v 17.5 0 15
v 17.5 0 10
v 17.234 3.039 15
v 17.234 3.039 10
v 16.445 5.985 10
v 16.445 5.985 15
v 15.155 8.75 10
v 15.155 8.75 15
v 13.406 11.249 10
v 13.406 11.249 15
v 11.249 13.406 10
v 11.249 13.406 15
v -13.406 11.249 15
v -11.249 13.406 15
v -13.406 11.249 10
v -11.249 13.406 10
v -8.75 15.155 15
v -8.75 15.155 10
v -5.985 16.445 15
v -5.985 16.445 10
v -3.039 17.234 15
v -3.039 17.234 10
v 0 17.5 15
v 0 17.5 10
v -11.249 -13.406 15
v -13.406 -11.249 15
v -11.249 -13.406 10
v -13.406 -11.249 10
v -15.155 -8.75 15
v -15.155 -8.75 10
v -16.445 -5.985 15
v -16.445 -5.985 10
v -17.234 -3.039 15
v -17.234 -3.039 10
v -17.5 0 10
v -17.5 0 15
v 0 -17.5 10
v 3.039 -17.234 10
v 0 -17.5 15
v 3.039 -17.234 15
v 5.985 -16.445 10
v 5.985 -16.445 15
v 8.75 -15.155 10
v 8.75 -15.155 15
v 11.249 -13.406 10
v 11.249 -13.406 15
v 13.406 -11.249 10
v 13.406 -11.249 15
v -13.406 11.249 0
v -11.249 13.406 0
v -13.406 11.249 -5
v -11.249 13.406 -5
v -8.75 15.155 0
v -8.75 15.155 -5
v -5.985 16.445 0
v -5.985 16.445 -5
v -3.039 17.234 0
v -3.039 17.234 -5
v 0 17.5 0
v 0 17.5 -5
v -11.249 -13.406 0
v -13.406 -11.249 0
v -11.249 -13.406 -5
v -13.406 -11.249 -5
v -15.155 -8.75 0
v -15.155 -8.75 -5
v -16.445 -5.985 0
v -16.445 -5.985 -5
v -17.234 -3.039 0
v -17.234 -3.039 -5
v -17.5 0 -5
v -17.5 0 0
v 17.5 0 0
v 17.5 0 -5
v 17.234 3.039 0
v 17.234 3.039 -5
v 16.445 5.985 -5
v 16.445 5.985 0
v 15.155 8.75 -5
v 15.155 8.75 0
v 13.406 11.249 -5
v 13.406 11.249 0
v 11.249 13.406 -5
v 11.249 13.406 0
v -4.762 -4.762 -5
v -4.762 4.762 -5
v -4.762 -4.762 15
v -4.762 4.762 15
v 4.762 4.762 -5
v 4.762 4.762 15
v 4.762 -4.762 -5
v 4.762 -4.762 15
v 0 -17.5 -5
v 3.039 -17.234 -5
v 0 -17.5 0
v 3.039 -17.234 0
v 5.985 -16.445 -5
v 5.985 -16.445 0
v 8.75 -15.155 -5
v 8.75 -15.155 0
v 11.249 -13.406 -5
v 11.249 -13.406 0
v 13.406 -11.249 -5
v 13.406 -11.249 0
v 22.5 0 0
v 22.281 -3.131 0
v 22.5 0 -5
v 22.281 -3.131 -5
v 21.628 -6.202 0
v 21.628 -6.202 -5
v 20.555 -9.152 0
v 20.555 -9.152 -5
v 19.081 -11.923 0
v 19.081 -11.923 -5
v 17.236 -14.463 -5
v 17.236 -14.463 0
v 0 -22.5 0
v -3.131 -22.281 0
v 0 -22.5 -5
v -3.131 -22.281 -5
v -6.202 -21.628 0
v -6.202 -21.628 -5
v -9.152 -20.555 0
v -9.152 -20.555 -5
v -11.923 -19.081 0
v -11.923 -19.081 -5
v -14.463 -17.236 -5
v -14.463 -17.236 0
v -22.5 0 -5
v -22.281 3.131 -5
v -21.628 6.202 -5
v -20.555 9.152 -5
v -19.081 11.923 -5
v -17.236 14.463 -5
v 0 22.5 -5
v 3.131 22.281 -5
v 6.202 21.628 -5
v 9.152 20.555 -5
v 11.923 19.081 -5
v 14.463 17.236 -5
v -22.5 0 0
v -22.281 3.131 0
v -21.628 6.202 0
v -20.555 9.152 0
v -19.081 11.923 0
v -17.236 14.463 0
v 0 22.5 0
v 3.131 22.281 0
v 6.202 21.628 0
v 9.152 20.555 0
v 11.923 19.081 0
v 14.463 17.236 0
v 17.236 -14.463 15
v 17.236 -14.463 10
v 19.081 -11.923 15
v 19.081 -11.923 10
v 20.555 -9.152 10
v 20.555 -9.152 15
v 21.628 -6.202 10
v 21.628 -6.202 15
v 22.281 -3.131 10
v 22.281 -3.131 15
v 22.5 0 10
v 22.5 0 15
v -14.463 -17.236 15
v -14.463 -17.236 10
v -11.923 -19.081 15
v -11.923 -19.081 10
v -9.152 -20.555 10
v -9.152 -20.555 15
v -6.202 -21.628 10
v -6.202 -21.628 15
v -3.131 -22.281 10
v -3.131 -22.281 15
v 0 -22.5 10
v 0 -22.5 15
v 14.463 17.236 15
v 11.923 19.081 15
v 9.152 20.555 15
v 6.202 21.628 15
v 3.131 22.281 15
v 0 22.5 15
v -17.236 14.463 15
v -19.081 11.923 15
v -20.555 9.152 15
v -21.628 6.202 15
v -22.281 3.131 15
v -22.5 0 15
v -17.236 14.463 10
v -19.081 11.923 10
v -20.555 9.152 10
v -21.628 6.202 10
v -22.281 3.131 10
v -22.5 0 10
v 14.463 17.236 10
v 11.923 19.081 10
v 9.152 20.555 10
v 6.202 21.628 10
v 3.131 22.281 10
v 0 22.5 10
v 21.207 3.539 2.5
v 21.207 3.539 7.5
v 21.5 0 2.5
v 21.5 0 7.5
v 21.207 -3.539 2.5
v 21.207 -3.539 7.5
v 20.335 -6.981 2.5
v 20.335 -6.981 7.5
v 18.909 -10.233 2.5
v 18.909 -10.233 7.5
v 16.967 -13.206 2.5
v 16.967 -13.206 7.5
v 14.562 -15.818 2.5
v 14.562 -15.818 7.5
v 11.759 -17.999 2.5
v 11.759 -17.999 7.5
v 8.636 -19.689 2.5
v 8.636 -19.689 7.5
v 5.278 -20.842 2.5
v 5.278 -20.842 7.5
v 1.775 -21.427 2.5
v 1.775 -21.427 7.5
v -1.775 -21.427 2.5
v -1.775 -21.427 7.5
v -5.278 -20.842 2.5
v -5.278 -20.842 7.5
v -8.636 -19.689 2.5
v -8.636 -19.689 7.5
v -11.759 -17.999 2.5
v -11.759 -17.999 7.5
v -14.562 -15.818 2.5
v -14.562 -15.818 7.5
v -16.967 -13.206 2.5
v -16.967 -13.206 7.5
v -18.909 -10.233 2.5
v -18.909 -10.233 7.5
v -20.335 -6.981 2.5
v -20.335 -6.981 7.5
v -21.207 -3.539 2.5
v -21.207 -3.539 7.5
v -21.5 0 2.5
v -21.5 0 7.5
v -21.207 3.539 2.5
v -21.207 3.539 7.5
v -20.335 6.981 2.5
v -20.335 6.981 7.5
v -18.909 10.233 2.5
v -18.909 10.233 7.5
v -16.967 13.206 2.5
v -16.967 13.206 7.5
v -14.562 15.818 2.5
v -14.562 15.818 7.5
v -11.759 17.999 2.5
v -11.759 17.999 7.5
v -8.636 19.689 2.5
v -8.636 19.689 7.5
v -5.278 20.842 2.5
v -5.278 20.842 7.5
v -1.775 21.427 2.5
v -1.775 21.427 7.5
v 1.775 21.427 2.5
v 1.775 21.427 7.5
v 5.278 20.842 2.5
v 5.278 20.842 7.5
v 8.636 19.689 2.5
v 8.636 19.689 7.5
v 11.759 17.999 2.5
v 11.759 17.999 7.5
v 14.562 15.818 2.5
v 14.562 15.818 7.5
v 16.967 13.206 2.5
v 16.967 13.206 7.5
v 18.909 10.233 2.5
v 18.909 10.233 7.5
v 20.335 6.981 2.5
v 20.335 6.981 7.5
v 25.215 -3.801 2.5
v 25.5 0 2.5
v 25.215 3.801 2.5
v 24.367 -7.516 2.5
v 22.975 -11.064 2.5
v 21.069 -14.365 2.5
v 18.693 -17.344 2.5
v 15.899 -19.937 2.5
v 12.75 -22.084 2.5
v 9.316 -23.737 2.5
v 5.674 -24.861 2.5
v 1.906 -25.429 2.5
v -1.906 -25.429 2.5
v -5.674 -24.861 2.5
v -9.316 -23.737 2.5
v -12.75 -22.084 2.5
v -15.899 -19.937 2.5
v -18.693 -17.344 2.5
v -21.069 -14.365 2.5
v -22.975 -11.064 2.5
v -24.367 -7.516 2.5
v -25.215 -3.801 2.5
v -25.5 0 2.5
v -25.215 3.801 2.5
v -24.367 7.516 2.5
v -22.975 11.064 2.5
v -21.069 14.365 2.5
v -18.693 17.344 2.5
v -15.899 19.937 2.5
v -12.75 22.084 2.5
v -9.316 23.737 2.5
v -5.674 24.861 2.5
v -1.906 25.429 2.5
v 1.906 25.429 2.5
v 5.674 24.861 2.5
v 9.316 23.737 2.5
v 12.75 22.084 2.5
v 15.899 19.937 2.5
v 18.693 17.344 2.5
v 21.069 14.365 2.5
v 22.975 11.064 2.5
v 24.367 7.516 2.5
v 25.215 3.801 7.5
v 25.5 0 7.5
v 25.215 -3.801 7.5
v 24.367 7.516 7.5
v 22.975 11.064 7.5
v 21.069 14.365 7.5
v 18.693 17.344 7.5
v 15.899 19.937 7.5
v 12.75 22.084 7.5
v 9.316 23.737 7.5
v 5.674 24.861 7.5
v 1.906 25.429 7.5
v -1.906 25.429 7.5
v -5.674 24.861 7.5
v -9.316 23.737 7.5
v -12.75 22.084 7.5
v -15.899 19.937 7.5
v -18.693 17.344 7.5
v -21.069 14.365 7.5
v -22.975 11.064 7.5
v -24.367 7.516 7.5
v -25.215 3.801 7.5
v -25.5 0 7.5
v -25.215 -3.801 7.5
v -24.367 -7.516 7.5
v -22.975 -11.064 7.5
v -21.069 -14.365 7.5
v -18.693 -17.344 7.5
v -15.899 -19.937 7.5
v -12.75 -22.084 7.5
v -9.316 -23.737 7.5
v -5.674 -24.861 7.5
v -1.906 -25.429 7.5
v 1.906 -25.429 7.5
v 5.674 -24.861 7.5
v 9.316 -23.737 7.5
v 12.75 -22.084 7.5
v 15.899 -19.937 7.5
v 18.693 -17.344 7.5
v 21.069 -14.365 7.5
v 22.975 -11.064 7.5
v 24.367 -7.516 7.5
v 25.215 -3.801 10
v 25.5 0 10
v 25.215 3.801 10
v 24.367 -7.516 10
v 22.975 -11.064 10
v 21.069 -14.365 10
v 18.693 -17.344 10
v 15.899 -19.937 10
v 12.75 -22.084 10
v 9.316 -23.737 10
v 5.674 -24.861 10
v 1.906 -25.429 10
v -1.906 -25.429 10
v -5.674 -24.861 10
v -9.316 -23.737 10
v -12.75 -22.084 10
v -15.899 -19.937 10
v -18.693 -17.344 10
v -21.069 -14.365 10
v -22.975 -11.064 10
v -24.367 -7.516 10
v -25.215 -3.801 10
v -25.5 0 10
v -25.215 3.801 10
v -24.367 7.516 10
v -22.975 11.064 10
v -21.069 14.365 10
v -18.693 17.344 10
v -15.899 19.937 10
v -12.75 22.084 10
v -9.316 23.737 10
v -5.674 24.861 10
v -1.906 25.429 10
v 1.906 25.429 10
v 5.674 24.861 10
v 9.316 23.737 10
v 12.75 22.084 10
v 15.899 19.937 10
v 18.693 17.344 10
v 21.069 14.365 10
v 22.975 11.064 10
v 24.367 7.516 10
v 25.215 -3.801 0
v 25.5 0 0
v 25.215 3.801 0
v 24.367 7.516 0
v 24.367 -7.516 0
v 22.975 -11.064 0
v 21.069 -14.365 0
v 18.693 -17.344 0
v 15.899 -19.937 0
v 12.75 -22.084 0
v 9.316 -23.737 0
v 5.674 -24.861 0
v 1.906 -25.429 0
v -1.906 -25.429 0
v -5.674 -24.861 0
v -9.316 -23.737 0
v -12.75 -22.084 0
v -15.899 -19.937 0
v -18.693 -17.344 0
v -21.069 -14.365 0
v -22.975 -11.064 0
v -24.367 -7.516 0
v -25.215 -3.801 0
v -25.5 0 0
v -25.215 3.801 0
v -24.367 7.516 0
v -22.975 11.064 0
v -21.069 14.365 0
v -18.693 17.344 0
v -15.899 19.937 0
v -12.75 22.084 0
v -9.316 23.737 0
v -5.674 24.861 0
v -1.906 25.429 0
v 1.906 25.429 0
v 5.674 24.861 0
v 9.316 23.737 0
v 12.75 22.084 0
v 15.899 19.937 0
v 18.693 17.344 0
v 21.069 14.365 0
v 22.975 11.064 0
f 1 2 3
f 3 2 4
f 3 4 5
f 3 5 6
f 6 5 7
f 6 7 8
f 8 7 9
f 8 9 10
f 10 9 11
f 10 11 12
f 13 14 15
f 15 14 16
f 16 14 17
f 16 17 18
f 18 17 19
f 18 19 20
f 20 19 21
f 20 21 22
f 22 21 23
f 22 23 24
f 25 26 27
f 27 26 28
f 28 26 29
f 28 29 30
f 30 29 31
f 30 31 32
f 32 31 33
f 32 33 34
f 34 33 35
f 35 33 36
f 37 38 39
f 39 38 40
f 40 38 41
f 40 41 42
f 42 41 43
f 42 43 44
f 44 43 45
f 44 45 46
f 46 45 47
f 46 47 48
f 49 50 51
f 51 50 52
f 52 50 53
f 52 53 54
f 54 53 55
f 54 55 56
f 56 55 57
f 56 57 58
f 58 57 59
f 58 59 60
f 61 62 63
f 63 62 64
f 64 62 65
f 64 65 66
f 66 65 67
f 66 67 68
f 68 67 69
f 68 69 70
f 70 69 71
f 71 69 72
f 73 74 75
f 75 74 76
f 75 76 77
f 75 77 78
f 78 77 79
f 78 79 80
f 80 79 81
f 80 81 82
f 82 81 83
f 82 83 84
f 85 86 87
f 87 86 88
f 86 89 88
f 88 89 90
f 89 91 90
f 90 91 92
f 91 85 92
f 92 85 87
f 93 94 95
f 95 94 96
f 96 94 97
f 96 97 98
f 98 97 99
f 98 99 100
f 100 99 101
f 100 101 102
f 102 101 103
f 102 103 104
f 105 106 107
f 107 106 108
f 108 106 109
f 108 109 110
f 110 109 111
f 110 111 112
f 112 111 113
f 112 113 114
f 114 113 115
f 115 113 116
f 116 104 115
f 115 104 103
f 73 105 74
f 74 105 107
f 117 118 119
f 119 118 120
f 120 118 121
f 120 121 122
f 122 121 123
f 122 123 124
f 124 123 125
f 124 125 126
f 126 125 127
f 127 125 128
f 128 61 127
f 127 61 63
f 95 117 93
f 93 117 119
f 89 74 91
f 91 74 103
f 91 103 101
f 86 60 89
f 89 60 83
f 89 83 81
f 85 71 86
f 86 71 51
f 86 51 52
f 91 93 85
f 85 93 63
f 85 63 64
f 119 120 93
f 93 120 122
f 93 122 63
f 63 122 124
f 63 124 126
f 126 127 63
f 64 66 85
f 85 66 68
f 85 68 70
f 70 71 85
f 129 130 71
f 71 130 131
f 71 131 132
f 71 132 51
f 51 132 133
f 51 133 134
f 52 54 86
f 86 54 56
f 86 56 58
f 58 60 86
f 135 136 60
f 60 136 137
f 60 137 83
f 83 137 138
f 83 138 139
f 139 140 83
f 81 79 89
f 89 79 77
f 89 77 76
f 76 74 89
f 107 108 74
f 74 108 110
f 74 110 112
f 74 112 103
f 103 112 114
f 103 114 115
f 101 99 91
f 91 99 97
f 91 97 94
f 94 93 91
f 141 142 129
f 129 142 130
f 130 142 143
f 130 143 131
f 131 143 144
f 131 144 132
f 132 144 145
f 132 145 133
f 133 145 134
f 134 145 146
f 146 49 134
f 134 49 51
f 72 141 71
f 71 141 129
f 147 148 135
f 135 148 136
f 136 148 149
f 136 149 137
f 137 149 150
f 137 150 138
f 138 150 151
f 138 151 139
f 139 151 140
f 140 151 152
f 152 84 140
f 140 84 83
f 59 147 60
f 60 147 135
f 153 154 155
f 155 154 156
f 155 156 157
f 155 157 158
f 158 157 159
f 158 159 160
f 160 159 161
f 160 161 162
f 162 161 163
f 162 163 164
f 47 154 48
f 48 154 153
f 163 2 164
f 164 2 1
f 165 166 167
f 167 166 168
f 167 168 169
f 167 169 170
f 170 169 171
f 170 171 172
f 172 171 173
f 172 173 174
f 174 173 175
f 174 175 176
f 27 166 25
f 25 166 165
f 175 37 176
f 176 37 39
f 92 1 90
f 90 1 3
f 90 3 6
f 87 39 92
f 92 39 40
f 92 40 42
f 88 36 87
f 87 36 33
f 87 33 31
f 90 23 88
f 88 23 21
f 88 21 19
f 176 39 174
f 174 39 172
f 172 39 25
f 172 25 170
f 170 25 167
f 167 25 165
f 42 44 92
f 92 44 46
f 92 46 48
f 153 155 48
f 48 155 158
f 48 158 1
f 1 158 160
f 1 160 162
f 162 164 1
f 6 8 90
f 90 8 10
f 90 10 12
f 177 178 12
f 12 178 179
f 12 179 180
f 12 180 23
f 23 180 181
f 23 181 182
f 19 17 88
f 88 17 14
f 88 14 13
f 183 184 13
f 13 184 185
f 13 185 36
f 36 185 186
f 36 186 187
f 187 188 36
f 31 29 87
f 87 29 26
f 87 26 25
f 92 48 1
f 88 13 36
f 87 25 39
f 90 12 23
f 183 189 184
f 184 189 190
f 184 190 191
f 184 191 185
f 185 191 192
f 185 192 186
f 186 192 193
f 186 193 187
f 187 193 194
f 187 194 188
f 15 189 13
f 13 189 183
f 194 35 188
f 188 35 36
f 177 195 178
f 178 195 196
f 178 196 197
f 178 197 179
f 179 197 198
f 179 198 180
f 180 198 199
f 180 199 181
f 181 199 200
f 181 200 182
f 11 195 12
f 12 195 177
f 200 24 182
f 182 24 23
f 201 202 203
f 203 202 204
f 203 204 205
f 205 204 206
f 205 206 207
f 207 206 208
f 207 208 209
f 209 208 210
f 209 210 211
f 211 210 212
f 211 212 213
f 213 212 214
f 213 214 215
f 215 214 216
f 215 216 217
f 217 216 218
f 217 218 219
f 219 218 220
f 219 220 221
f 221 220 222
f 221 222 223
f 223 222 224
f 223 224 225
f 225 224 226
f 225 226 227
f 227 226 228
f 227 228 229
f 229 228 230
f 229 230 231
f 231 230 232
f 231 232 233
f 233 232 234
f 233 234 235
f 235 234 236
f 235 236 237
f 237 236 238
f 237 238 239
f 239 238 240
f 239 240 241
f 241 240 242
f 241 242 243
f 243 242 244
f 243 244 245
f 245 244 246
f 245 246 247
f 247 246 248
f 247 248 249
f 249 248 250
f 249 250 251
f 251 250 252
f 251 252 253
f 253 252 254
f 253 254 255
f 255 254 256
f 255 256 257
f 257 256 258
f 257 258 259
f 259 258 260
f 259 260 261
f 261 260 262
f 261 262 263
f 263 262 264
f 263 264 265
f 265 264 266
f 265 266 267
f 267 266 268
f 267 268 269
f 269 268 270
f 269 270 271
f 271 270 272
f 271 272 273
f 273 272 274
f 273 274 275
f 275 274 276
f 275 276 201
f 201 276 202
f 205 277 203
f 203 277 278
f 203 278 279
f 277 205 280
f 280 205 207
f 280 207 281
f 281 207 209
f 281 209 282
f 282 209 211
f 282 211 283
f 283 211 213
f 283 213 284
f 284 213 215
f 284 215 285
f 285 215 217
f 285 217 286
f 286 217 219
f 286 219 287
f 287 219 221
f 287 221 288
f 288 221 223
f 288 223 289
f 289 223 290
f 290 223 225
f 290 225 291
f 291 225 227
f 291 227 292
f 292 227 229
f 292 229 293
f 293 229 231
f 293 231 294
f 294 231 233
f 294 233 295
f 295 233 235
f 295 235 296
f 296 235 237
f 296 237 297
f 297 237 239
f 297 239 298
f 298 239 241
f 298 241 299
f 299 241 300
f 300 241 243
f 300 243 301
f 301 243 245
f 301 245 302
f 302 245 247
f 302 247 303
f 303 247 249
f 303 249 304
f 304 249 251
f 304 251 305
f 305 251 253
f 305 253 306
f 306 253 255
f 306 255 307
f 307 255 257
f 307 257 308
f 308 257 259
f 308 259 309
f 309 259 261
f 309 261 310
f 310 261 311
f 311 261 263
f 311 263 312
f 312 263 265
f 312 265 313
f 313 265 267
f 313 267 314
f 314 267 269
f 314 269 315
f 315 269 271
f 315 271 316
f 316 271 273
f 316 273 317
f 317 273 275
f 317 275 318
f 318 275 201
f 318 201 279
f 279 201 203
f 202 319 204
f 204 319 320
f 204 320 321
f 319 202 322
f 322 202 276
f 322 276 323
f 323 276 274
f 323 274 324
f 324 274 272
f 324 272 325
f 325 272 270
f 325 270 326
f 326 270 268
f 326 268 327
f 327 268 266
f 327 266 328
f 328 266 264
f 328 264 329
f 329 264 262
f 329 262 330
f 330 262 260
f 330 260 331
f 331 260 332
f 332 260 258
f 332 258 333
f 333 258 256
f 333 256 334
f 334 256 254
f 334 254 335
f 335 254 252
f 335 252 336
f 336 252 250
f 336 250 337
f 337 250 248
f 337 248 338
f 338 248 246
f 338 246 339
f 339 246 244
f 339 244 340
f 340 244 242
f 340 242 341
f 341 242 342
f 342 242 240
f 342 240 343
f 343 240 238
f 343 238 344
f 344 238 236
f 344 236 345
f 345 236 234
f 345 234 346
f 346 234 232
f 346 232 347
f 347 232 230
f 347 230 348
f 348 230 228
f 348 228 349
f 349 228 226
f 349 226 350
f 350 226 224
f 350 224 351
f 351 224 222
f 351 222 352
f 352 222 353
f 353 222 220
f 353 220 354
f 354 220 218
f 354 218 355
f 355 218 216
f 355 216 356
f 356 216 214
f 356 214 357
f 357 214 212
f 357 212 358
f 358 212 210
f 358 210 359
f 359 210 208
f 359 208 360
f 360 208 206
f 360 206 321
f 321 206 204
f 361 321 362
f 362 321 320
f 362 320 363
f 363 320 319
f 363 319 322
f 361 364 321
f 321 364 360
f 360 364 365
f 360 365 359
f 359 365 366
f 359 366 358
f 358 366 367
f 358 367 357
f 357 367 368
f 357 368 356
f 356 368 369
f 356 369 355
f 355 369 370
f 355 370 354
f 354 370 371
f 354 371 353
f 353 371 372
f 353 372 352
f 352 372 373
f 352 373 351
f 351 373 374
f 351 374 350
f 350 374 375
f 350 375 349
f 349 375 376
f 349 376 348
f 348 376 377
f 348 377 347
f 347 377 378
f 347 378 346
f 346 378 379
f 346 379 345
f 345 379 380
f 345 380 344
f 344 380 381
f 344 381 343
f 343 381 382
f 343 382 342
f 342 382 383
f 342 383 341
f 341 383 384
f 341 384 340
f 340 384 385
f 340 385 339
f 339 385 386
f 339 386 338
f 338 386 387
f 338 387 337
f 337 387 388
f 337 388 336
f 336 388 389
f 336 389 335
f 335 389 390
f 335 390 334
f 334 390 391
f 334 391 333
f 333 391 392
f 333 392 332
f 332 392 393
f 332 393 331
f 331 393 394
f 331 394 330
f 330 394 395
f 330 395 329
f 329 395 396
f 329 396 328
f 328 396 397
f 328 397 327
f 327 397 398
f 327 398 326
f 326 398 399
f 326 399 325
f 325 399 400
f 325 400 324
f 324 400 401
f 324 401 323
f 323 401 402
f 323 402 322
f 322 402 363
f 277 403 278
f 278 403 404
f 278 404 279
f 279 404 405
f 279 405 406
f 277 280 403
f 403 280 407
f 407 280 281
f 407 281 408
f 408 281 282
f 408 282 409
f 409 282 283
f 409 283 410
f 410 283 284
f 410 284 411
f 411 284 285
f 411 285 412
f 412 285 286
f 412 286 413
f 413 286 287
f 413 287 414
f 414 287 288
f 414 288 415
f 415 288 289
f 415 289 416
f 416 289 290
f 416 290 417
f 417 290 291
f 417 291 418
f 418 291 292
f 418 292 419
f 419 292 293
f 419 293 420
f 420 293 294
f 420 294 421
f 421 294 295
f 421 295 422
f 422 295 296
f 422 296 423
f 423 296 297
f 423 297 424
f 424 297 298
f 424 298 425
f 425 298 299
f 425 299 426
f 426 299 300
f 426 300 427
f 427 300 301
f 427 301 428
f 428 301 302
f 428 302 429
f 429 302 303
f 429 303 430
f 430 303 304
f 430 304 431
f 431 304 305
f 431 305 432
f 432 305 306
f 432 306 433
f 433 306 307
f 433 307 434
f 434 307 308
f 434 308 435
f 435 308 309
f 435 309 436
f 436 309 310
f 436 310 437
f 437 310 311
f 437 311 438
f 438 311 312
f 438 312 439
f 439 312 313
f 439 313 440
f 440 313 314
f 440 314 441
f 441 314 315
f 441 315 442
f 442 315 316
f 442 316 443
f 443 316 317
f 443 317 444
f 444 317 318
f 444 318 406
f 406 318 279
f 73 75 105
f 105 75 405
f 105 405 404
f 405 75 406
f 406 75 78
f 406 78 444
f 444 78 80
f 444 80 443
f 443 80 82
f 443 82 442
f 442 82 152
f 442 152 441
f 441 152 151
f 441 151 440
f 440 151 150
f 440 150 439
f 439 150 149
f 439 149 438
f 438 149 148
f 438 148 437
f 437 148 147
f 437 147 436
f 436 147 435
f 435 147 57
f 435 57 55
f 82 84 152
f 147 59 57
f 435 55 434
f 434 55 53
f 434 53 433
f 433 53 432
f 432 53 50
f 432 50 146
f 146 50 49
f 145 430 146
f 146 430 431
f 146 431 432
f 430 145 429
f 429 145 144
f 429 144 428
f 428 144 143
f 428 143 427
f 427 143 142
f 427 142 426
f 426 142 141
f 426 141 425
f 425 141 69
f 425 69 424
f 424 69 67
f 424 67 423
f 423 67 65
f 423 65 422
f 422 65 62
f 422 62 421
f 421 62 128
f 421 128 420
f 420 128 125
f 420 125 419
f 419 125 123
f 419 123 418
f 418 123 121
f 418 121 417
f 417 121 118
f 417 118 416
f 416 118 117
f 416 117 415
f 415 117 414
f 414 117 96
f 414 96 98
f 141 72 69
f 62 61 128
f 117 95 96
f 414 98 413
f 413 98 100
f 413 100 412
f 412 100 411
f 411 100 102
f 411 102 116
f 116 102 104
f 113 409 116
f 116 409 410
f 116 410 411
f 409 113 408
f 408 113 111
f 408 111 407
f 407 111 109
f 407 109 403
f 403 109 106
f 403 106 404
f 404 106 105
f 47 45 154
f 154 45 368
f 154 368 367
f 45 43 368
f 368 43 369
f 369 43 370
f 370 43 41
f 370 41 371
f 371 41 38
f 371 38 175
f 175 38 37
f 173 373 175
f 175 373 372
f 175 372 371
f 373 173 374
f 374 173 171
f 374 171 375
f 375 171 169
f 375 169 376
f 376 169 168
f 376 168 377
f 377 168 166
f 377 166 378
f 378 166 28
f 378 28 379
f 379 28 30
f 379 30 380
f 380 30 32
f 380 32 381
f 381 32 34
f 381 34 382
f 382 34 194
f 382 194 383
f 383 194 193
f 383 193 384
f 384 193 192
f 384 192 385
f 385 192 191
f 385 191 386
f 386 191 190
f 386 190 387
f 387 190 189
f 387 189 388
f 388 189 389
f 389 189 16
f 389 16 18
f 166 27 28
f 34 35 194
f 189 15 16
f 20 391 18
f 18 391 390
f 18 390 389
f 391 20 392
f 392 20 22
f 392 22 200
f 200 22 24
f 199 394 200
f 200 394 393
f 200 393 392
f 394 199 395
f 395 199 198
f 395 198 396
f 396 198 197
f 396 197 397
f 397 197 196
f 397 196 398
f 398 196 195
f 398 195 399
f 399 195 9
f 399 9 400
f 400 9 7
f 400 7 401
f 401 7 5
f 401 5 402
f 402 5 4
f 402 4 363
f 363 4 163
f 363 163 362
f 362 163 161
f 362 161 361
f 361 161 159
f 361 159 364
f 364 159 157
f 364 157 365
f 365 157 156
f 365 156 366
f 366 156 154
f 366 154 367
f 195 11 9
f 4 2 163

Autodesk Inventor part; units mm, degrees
ref_plane "YZ Plane" through (0, 0, 0) normal (1, 0, 0) x (0, 1, 0)
ref_plane "XZ Plane" through (0, 0, 0) normal (0, 1, 0) x (-1, 0, 0)
sketch "Sketch1" plane through (0, 0, 0) normal (0, 0, 1) x (1, 0, 0)
  circle A0 centre (0, 0) radius 17.5
  circle A1 centre (0, 0) radius 25.5
  dimension "d0" = 35
  dimension "d1" = 8
extrude "Extrusion1" add sketch "Sketch1" along normal blind 10
ref_plane "Work Plane1" through (0, 0, 5) normal (0, 0, 1) x (1, 0, 0)
sketch "Sketch2" plane through (0, 0, 5) normal (0, 0, 1) x (1, 0, 0)
  circle A0 centre (0, 0) radius 25.5 projected
  circle A1 centre (0, 0) radius 21.5
  dimension "d4" = 4
extrude "Extrusion2" cut sketch "Sketch2" along normal mid plane 5
sketch "Sketch3" plane through (0, 0, 10) normal (0, 0, 1) x (1, 0, 0)
  circle A0 centre (0, 0) radius 17.5 construction
  line L0 (0, 0) -> (0, 17.5) construction
  line L1 (0, 17.5) -> (0, 22.5)
  arc A1 (14.4627, 17.236) -> (0, 22.5) centre (0, 0) ccw
  arc A2 (11.2488, 13.4058) -> (0, 17.5) centre (0, 0) ccw
  line L2 (14.4627, 17.236) -> (11.2488, 13.4058)
  dimension "d7" = 5
  dimension "d8" = 40
extrude "Extrusion3" add sketch "Sketch3" along normal blind 5
pattern_circular "Circular Pattern1" count 4 over 360 about axis through (0, 0, 0) along (0, 0, 1) of "Extrusion3"
mirror "Mirror1" about plane through (0, 0, 5) normal (0, 0, 1) of "Extrusion3", "Circular Pattern1"
sketch "Sketch4" plane through (0, 0, 10) normal (0, 0, 1) x (1, 0, 0)
  arc A0 (17.5, 0) -> (11.2488, 13.4058) centre (0, 0) ccw projected
  arc A1 (11.2488, 13.4058) -> (0, 17.5) centre (0, 0) ccw projected
  arc A2 (0, 17.5) -> (-13.4058, 11.2488) centre (0, 0) ccw projected
  arc A3 (-13.4058, 11.2488) -> (-17.5, 0) centre (0, 0) ccw projected
  arc A4 (-17.5, 0) -> (-11.2488, -13.4058) centre (0, 0) ccw projected
  arc A5 (-11.2488, -13.4058) -> (0, -17.5) centre (0, 0) ccw projected
  arc A6 (0, -17.5) -> (13.4058, -11.2488) centre (0, 0) ccw projected
  arc A7 (13.4058, -11.2488) -> (17.5, 0) centre (0, 0) ccw projected
  line L0 (4.7625, -4.7625) -> (-4.7625, -4.7625)
  line L1 (-4.7625, -4.7625) -> (-4.7625, 4.7625)
  line L2 (-4.7625, 4.7625) -> (4.7625, 4.7625)
  line L3 (4.7625, 4.7625) -> (4.7625, -4.7625)
  line L4 (4.7625, -4.7625) -> (-4.7625, 4.7625) construction
  line L5 (-4.7625, -4.7625) -> (4.7625, 4.7625) construction
  arc A8 (0, 17.5) -> (-13.4058, 11.2488) centre (0, 0) ccw projected
  circle A9 centre (0, 0) radius 17.5
  dimension "d14" = 9.525
extrude "Extrusion4" add sketch "Sketch4" against normal up to surface (20 mm away) from surface at 5
properties part number "dog clutch"
